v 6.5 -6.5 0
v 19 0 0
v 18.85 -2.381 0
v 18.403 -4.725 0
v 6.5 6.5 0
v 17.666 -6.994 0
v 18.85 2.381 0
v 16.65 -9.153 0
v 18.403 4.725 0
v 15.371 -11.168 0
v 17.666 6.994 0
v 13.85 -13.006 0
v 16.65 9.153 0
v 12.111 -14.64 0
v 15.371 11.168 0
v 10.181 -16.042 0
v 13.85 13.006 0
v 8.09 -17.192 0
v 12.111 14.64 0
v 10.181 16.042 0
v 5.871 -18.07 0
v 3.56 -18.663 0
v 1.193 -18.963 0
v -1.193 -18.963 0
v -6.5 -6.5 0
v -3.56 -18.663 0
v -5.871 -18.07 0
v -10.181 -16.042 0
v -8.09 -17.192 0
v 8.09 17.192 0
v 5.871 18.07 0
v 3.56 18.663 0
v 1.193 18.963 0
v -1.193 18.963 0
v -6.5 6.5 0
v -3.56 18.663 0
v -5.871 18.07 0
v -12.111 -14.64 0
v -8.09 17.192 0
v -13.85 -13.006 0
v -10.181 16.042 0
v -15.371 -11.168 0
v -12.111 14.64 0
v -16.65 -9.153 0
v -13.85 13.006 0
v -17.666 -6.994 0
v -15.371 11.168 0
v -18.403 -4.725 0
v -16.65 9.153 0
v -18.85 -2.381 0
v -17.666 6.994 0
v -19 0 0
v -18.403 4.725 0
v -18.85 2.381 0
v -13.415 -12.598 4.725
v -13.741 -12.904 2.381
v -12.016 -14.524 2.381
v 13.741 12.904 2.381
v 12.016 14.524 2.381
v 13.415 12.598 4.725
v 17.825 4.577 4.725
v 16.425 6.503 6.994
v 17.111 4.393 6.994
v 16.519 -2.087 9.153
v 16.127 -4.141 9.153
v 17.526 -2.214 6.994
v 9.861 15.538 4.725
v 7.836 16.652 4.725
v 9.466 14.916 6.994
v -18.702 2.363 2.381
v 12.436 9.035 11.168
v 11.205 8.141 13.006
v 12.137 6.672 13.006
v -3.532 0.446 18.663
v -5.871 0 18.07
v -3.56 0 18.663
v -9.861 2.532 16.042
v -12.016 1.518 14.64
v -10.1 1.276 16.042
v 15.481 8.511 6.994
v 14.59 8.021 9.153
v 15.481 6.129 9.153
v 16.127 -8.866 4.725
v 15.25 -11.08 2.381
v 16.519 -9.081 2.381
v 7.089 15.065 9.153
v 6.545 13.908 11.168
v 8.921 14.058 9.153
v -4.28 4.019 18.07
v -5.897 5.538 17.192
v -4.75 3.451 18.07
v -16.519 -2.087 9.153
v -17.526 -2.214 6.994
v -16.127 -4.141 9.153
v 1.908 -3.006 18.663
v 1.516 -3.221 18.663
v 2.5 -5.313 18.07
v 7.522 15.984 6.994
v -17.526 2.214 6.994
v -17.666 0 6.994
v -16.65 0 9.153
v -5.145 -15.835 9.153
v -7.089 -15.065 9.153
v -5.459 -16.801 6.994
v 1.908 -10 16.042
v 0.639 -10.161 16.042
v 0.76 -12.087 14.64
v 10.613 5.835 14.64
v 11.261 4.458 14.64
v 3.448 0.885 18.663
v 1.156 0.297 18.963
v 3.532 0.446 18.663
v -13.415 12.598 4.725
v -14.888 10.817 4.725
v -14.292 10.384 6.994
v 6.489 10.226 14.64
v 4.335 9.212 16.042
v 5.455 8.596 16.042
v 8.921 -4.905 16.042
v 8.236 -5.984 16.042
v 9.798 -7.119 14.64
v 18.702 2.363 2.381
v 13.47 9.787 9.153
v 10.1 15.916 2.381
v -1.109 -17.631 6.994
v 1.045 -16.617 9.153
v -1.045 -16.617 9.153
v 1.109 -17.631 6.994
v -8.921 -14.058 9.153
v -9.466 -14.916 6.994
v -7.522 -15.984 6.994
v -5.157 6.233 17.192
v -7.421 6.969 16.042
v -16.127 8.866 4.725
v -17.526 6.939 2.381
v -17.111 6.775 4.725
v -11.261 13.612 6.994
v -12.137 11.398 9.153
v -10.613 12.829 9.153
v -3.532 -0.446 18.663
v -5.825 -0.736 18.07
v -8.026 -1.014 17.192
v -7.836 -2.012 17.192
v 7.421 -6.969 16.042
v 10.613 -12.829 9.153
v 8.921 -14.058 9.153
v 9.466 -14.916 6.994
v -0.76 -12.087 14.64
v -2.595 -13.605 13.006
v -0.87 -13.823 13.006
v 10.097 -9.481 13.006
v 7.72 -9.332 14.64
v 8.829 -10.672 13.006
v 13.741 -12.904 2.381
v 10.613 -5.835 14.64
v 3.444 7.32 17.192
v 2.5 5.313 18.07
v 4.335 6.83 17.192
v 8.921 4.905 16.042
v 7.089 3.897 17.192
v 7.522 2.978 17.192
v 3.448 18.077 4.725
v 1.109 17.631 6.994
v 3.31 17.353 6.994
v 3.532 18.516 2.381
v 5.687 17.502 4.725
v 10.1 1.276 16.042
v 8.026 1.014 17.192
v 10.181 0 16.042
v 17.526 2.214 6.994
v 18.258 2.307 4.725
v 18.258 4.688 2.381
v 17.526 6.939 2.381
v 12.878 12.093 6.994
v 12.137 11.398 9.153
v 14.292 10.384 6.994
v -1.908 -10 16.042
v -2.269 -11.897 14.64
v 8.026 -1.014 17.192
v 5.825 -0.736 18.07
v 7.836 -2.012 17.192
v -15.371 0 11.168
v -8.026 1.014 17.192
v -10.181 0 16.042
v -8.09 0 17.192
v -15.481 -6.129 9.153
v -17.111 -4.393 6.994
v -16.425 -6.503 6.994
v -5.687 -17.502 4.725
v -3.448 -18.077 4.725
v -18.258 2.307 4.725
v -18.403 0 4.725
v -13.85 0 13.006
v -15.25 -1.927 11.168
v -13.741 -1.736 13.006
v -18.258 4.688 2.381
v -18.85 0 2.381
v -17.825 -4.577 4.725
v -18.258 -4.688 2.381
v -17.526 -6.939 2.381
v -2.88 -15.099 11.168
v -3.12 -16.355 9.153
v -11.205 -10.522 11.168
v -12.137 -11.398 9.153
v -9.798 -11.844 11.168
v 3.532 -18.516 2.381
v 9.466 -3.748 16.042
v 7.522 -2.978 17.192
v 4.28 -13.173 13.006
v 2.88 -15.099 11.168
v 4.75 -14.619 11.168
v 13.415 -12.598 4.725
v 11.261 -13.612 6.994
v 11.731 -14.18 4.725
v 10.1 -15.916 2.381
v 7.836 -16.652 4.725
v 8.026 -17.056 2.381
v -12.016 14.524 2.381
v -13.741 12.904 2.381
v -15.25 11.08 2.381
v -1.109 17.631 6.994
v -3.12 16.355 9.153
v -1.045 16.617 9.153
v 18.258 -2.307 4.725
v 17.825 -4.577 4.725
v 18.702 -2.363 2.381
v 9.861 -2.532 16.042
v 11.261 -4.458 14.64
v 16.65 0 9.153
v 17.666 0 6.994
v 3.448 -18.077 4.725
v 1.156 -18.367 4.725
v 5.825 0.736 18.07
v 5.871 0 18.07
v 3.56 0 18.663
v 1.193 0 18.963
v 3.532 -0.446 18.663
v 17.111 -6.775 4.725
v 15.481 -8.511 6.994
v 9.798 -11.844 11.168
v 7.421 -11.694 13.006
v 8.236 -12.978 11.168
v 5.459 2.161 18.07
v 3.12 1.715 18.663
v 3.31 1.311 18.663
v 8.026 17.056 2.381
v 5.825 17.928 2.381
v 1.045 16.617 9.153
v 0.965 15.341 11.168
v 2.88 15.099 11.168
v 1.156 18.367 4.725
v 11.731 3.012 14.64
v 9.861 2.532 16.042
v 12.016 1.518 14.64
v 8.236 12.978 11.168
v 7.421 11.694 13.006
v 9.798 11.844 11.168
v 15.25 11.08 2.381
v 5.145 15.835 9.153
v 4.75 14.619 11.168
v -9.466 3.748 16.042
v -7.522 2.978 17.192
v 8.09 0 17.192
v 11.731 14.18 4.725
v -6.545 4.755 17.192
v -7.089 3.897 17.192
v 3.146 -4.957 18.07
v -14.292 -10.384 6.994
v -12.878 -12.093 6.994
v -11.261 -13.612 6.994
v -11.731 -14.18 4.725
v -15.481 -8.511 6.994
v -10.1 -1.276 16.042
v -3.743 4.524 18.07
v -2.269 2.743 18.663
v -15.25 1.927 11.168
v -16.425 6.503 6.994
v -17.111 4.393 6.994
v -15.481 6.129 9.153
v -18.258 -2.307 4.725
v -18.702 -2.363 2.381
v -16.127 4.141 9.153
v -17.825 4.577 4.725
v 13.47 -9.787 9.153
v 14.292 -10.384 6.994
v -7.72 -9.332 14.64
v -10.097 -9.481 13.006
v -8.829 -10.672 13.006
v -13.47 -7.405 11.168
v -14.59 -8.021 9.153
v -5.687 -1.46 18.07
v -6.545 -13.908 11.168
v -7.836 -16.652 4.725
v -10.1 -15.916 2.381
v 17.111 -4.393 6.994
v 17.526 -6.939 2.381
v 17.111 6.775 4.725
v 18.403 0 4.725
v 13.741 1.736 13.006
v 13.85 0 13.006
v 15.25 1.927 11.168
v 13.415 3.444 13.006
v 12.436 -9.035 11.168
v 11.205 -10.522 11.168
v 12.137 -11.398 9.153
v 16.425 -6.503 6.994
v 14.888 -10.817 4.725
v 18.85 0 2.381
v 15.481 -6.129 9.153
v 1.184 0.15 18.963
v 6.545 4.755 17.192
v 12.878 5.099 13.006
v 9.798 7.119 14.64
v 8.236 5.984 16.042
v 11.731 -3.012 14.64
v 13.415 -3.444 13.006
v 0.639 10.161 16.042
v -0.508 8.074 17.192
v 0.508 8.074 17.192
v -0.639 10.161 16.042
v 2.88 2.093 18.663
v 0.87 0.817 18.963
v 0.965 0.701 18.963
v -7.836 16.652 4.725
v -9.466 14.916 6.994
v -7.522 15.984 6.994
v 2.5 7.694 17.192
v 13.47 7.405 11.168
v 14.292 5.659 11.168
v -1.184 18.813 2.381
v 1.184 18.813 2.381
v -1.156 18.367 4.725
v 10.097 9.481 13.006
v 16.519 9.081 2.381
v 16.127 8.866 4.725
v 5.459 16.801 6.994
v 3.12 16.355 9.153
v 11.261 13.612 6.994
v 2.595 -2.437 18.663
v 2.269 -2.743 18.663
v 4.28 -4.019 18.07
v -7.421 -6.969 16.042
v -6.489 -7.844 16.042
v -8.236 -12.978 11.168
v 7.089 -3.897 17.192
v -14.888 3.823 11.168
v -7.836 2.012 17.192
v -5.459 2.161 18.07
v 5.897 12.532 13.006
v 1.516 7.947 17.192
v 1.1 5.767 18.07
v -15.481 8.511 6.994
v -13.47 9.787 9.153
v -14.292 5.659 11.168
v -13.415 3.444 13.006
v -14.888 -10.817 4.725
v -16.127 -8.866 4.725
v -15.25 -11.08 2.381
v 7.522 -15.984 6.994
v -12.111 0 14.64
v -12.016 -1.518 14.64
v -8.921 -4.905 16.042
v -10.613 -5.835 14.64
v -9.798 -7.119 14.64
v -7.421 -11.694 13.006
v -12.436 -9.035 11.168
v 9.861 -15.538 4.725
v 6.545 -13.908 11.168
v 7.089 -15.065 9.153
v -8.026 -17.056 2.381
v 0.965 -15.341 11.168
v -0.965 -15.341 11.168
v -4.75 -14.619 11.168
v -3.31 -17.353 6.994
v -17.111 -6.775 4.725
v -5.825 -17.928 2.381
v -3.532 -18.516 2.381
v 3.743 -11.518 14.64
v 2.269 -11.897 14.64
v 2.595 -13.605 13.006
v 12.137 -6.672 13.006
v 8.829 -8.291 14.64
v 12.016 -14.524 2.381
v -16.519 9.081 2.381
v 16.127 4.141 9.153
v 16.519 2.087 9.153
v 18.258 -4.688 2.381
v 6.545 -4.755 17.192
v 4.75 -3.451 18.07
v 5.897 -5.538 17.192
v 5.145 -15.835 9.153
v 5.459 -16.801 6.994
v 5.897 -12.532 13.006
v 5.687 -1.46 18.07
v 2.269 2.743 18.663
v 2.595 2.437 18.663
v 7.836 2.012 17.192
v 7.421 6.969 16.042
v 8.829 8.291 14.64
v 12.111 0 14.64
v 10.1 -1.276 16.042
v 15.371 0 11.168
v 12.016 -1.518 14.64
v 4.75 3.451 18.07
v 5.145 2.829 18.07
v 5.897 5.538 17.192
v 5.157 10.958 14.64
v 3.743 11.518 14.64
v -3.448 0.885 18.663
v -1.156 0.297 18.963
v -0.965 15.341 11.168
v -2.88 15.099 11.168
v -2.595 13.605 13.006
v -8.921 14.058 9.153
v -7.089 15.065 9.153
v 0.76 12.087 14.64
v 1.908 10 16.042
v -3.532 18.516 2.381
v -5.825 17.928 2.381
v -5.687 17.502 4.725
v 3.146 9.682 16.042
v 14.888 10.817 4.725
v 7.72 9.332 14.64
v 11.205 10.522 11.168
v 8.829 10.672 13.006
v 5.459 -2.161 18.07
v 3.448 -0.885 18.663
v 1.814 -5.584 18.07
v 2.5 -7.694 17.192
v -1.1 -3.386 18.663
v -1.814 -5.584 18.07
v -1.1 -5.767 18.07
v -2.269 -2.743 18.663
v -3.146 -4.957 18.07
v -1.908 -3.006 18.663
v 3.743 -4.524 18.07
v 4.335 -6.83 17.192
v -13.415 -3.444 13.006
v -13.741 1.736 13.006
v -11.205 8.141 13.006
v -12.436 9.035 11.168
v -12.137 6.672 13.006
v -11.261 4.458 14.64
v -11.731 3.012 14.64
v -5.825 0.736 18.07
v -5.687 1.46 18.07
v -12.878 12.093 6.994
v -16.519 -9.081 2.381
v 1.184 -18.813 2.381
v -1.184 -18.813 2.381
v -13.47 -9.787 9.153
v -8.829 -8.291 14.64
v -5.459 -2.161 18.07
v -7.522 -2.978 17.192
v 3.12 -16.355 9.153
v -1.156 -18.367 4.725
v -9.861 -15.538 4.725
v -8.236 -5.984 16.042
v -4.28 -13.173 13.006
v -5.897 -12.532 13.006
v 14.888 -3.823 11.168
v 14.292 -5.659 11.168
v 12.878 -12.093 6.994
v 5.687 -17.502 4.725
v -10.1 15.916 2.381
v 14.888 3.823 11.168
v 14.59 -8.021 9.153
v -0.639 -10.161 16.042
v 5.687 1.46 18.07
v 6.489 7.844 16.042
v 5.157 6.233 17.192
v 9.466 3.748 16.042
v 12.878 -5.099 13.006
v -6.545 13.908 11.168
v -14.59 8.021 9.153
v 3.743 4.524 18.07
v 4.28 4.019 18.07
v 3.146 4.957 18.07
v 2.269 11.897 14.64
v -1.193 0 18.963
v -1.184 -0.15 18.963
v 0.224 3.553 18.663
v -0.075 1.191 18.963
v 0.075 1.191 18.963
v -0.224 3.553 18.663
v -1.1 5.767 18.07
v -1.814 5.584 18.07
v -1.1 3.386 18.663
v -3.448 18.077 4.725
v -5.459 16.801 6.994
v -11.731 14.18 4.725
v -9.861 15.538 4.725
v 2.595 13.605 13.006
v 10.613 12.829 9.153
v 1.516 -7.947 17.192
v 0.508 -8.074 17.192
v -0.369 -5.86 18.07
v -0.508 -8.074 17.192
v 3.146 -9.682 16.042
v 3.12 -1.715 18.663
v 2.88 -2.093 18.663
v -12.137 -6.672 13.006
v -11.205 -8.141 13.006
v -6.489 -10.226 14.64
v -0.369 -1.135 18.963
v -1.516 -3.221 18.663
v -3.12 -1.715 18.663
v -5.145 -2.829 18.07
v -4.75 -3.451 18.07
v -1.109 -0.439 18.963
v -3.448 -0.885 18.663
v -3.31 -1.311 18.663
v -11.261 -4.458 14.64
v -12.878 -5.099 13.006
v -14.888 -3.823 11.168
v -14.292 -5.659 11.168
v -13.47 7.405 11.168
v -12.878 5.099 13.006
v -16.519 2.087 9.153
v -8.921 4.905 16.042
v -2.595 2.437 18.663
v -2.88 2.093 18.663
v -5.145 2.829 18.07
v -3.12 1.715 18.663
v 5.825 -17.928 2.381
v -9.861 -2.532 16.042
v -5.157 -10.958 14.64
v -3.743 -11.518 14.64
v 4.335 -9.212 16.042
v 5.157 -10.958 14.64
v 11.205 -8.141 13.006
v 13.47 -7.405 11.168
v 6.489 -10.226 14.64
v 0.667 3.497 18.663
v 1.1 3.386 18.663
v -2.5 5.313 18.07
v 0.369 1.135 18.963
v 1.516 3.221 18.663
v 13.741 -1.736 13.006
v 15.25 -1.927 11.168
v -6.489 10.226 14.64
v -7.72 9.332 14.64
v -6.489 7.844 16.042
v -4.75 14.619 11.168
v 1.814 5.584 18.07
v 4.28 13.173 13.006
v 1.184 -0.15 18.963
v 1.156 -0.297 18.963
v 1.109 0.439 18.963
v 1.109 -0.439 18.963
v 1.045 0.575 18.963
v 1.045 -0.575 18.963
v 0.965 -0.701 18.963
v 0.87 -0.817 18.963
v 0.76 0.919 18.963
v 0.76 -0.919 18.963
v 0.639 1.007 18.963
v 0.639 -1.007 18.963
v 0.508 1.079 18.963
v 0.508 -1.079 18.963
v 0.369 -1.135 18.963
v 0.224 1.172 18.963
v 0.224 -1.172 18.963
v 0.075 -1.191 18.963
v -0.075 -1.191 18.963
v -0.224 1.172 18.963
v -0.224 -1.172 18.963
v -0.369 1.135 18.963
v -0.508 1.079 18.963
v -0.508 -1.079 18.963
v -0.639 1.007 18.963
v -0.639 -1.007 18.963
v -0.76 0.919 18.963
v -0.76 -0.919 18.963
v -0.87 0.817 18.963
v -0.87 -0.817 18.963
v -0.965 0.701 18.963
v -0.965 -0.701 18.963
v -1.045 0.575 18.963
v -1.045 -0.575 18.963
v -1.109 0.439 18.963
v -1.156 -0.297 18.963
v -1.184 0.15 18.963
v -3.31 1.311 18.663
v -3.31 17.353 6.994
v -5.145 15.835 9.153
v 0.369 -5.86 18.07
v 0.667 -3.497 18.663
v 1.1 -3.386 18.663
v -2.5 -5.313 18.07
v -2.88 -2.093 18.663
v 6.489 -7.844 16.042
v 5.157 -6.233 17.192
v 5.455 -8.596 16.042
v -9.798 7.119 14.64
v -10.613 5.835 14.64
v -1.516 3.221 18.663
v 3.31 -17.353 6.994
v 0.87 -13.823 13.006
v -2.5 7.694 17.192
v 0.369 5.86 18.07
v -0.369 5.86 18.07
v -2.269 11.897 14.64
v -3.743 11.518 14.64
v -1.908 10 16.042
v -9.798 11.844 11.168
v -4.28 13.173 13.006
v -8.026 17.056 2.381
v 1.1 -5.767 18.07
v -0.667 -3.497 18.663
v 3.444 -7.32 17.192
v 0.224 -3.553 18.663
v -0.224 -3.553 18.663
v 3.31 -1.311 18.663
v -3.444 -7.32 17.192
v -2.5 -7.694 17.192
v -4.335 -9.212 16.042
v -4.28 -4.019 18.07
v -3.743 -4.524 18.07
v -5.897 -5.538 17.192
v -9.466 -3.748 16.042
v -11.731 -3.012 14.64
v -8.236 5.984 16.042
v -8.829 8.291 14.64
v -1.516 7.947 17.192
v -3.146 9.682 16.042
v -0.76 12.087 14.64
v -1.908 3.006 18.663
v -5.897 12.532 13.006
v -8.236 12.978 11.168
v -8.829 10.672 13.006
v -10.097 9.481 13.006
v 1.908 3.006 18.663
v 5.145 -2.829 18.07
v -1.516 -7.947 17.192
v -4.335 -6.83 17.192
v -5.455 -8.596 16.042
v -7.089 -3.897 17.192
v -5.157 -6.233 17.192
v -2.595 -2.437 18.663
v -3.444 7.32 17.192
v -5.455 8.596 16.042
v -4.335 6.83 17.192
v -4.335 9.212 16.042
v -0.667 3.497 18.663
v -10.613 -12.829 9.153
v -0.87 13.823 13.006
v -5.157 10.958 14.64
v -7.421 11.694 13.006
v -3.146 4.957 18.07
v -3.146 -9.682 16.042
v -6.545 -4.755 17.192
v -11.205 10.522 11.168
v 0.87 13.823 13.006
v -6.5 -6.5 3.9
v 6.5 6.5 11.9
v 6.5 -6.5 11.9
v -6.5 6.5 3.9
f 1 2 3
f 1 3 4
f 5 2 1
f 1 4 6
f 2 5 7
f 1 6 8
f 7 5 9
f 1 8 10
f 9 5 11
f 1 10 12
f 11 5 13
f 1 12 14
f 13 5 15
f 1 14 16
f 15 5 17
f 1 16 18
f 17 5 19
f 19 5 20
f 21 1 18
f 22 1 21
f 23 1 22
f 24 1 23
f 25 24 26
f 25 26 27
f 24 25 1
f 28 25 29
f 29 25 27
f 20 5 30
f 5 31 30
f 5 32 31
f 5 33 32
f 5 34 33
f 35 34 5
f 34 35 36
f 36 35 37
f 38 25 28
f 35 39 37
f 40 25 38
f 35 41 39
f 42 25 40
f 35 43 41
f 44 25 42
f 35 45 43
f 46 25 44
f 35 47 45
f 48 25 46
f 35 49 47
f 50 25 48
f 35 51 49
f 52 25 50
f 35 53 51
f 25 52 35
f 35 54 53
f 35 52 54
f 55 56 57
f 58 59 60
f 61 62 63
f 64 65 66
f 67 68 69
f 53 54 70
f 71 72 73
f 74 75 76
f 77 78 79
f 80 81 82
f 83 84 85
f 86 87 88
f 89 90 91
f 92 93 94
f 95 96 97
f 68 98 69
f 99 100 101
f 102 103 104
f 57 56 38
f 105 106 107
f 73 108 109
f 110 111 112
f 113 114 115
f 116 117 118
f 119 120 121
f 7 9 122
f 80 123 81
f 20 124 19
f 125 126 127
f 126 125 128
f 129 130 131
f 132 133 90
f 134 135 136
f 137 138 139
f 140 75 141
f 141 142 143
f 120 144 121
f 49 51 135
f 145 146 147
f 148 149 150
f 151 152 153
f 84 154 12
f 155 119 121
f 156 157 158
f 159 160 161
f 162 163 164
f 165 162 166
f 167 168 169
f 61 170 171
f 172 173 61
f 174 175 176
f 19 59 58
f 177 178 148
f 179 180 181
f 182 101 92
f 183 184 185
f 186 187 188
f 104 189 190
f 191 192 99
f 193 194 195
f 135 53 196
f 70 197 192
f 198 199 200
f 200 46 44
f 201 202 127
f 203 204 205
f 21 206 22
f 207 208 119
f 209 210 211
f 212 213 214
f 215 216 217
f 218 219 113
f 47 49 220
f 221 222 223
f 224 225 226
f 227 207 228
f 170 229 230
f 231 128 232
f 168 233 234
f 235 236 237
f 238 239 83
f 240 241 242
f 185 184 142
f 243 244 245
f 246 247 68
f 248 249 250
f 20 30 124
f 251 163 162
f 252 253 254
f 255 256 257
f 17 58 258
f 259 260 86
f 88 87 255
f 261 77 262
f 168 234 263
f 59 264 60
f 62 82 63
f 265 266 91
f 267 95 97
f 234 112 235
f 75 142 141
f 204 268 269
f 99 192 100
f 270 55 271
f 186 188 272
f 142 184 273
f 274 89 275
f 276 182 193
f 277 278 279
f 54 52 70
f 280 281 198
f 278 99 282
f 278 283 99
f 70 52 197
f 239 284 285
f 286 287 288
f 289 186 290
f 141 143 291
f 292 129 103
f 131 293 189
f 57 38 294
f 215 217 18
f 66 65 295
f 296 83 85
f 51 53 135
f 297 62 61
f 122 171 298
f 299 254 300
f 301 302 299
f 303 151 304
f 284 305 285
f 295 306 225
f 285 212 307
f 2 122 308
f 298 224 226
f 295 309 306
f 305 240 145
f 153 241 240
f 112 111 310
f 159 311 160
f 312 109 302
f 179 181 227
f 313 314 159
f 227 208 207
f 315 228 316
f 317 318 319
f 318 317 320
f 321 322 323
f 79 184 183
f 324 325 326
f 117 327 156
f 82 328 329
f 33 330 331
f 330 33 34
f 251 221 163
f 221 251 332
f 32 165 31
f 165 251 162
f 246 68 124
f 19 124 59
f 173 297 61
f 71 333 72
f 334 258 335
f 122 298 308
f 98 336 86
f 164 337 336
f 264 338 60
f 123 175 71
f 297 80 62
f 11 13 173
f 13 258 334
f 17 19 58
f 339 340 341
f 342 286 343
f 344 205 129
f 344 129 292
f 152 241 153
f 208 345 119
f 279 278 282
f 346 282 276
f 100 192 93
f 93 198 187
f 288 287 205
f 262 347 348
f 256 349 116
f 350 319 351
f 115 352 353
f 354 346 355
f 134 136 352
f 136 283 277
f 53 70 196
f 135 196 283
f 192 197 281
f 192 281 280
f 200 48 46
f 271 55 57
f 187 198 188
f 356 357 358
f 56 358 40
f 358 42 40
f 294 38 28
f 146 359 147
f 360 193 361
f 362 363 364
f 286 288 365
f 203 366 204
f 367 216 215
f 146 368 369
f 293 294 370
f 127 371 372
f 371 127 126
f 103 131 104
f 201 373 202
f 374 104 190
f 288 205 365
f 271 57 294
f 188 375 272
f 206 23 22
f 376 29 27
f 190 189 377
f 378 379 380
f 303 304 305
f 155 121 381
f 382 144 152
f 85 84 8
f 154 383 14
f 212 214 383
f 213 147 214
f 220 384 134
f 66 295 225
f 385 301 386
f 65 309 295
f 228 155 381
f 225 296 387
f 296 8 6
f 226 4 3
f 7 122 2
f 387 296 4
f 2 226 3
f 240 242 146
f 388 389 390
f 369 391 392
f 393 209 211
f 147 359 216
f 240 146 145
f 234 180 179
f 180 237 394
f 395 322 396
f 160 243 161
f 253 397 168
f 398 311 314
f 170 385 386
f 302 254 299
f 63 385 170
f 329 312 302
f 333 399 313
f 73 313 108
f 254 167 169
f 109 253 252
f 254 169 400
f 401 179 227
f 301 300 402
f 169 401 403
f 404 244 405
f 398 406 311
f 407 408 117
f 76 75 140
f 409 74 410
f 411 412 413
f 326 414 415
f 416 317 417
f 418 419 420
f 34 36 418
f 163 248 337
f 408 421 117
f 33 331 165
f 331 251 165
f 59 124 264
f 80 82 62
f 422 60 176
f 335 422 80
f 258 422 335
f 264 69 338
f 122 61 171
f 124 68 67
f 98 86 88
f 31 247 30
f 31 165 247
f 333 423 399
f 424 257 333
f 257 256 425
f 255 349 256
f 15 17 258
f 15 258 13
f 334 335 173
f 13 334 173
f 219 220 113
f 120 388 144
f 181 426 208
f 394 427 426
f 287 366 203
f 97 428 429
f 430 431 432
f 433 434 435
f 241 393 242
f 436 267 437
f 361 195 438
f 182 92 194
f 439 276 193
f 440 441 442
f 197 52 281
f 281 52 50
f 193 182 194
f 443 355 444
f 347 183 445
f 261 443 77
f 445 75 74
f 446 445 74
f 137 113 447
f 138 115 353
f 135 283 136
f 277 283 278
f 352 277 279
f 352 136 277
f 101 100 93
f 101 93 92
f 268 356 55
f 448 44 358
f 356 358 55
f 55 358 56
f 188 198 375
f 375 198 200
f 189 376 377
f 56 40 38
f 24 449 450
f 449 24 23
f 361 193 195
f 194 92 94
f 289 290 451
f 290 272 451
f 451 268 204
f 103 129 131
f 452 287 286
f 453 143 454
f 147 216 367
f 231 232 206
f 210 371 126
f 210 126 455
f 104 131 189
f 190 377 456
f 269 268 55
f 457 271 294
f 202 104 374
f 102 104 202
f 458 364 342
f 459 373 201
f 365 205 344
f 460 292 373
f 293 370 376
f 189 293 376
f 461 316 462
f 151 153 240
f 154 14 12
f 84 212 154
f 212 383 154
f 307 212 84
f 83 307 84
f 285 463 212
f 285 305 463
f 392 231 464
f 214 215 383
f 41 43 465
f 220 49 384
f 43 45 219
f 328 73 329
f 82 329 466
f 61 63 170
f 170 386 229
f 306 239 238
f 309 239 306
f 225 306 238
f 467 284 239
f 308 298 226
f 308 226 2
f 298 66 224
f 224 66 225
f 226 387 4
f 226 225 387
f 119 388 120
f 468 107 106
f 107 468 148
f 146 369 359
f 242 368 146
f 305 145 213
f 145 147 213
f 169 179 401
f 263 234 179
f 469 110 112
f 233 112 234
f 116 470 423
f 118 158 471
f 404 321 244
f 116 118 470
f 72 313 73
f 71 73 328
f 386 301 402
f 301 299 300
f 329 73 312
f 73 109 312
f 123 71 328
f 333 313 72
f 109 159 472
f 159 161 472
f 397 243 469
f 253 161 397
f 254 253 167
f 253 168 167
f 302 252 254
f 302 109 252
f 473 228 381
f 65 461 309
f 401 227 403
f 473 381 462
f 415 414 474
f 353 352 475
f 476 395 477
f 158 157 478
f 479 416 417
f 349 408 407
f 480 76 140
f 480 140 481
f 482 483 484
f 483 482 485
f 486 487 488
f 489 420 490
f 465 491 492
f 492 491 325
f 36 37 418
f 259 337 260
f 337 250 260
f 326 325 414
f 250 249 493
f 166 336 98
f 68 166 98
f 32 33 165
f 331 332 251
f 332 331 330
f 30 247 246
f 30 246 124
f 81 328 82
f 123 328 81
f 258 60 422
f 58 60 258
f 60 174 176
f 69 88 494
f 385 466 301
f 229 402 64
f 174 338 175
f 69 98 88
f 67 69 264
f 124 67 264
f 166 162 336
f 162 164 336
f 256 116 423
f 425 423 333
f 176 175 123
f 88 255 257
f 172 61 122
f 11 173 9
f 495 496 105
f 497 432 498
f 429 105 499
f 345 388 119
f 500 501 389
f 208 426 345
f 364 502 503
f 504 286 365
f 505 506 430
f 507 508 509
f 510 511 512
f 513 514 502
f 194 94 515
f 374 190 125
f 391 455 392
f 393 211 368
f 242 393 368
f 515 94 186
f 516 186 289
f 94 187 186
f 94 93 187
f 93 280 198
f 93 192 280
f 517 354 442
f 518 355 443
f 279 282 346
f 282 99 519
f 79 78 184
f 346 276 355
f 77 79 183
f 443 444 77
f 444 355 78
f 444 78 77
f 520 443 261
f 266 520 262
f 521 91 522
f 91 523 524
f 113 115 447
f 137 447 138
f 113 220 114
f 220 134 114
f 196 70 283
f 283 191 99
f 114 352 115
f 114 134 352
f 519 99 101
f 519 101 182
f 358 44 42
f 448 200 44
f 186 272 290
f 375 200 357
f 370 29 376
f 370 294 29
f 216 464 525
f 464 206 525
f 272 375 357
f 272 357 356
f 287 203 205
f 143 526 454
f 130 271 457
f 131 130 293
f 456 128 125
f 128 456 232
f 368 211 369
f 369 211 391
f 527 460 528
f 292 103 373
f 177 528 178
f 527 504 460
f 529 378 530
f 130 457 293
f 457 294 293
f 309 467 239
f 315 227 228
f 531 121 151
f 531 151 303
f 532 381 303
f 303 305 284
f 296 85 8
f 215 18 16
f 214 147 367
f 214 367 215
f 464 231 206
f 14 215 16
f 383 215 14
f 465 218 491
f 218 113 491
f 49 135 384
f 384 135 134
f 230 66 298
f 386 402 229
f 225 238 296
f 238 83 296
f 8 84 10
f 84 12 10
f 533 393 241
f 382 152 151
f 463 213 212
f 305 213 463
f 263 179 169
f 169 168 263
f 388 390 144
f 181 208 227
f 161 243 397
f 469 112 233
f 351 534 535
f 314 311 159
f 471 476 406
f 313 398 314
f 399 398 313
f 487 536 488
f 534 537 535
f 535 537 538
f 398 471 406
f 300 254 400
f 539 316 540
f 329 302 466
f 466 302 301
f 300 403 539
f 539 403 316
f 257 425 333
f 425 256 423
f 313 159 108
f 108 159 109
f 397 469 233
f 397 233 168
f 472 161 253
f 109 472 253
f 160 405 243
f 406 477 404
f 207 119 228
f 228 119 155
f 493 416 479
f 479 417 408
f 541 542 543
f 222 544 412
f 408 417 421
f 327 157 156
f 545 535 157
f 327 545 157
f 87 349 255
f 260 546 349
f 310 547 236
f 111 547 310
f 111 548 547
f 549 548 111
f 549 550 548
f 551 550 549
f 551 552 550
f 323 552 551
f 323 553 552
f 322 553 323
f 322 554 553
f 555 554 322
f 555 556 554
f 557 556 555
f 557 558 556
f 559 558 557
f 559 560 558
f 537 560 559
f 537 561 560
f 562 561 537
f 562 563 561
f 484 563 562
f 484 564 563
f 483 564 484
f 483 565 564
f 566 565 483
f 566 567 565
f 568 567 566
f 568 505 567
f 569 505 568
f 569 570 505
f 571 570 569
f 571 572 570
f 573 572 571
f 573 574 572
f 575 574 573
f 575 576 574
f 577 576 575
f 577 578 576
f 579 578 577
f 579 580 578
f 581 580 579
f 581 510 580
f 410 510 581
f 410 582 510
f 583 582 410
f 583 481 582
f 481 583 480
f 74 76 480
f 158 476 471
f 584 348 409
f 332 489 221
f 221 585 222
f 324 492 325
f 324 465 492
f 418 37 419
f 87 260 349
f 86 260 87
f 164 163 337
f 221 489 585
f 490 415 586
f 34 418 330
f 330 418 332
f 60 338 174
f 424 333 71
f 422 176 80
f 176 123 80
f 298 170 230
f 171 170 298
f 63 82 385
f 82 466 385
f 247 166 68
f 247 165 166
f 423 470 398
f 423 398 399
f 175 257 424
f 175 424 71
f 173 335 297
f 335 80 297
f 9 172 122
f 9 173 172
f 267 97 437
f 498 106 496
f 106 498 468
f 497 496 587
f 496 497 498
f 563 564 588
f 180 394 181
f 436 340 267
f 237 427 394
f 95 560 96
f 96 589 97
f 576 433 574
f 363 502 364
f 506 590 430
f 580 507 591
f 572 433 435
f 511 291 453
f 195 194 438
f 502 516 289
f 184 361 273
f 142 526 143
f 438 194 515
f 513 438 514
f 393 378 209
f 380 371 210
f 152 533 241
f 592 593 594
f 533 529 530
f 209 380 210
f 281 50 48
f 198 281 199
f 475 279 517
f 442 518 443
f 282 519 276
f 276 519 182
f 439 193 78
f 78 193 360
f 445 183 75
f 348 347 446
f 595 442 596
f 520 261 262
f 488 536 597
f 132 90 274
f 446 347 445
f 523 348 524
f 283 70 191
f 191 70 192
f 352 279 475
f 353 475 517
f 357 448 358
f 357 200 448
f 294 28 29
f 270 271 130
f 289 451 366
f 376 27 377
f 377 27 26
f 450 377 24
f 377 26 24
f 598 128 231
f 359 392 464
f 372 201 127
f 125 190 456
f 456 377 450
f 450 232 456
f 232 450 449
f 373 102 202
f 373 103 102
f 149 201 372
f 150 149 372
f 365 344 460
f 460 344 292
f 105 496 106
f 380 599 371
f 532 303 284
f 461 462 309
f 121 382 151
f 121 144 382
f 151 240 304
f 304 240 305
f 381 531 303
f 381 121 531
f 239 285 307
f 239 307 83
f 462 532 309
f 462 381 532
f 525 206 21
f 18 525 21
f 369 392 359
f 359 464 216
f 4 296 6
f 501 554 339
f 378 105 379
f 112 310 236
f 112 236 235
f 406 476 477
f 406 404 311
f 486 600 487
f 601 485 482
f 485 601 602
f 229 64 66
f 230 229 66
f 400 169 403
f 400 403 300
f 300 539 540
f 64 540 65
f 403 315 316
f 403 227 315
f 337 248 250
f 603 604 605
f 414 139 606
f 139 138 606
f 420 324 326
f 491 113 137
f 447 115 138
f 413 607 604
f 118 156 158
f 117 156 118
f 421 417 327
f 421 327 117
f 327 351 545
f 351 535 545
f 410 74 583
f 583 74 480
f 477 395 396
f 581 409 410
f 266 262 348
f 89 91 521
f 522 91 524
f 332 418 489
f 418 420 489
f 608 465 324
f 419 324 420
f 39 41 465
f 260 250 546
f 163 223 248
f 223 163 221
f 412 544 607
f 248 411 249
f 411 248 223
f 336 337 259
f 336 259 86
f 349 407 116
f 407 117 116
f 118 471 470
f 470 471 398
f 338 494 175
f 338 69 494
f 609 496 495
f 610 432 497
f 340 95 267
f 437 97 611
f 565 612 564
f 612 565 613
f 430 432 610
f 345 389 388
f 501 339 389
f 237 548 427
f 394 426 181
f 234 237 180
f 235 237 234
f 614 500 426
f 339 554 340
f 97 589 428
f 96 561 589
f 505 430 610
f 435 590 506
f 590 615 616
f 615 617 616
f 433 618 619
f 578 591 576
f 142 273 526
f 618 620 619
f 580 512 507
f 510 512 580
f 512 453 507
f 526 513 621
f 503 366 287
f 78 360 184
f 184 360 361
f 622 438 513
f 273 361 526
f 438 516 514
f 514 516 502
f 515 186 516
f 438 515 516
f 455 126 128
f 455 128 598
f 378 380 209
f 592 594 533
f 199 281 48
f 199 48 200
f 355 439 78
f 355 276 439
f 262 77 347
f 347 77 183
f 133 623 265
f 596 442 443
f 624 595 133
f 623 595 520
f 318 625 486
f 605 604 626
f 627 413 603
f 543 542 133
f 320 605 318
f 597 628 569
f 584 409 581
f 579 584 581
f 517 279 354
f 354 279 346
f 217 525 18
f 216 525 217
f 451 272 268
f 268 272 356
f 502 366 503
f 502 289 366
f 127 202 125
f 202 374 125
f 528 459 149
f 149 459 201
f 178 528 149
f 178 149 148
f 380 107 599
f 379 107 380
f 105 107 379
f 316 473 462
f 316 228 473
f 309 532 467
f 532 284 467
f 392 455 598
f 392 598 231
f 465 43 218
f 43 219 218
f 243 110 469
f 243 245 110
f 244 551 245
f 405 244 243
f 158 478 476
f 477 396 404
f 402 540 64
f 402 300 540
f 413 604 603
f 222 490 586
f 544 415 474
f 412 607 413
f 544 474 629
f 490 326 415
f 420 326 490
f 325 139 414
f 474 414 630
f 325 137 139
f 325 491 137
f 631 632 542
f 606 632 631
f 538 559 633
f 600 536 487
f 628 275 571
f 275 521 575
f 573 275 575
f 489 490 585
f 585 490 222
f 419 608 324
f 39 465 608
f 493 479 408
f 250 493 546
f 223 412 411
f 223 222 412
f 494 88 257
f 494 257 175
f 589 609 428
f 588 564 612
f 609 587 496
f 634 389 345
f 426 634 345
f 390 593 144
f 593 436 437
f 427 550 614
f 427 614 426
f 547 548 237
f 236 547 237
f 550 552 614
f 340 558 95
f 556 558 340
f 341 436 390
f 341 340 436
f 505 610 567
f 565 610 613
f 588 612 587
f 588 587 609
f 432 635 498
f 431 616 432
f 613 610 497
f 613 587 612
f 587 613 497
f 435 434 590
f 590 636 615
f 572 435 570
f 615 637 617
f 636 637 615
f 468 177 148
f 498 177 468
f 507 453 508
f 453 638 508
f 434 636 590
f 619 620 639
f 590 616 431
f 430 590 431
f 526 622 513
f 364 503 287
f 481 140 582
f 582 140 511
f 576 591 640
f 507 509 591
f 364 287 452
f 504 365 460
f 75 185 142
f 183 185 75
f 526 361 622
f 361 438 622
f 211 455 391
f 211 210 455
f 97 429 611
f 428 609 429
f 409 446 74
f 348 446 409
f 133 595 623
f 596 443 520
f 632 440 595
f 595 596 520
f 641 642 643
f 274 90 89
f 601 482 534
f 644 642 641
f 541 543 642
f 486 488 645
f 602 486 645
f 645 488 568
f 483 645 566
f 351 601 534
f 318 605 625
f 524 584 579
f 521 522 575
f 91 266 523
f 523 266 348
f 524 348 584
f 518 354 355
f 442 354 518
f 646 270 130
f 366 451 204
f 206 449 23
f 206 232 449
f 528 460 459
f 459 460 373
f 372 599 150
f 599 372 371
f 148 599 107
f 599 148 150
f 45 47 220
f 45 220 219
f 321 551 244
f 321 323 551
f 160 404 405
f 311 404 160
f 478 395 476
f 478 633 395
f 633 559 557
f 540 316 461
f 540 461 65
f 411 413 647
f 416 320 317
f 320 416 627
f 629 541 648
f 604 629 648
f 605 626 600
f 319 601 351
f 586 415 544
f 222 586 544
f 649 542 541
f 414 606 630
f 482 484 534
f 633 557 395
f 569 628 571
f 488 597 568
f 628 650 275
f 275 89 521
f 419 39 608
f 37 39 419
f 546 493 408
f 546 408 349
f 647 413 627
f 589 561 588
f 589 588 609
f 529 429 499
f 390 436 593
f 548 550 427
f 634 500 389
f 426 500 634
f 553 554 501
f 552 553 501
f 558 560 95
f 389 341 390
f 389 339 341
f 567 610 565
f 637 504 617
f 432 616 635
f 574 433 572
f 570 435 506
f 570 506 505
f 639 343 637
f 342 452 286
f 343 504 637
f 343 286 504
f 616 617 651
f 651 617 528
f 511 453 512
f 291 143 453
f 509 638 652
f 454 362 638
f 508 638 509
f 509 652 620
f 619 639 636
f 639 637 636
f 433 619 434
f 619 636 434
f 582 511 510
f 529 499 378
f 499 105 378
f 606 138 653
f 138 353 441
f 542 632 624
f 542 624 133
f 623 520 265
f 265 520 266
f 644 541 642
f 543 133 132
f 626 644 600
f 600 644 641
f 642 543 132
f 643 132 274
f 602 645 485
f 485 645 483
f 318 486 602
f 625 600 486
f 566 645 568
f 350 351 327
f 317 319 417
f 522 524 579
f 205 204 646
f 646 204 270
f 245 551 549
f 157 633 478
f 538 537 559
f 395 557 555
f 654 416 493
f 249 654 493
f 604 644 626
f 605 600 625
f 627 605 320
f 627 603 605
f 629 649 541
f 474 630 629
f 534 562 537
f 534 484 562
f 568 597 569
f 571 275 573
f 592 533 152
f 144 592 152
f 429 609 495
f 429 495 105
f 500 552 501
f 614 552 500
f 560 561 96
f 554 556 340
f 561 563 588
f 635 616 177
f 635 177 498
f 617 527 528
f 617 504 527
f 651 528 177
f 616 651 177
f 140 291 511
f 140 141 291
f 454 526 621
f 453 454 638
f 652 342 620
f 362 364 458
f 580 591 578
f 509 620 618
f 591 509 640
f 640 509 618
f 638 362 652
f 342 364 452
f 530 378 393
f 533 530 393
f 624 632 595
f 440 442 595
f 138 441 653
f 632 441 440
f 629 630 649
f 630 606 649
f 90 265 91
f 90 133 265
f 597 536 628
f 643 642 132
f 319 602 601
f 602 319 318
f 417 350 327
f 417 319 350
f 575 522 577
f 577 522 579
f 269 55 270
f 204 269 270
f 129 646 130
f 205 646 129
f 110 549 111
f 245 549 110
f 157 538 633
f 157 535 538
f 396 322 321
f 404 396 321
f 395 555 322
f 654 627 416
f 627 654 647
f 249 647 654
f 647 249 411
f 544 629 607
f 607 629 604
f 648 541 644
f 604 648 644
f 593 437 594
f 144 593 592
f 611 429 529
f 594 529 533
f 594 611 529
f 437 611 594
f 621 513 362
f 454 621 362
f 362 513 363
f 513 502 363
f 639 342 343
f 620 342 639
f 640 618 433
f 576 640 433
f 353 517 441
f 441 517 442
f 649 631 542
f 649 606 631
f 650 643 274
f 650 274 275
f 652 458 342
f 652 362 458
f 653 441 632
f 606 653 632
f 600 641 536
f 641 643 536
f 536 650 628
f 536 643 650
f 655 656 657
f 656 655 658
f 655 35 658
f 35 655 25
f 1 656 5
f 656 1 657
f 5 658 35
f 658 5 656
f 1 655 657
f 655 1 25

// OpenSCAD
// file: lib/3d.scad
module disc(diameter, depth, center = false) {
  translate([ 0, 0, center ? -depth / 2 : 0 ]) {
    linear_extrude(depth) { circle(d = diameter); }
  }
}

module half_sphere(diameter) {
  intersection() {
    translate([ 0, 0, diameter / 4 ]) {
      cube([ diameter, diameter, diameter / 2 ], center = true);
    }

    sphere(d = diameter);
  }
}

half_sphere(10);
// main file
$fn = 50;

use <lib/3d.scad>

module door_thingy_cover(diameter = 38) {
  difference() {
    half_sphere(diameter);
    translate([ 0, 0, -0.1 ]) { door_thingy(); }
  }
}

module door_thingy(width = 13, square_height = 4, triangle_height = 12) {
  translate([ -width / 2, width / 2, 0 ]) {
    rotate([ 90, 0, 0 ]) {
      linear_extrude(width) {
        square([ width, square_height ]);
        polygon([[width, square_height], [width, triangle_height],
                 [0, square_height]]);
      }
    }
  }
}

// door_thingy();
door_thingy_cover();
